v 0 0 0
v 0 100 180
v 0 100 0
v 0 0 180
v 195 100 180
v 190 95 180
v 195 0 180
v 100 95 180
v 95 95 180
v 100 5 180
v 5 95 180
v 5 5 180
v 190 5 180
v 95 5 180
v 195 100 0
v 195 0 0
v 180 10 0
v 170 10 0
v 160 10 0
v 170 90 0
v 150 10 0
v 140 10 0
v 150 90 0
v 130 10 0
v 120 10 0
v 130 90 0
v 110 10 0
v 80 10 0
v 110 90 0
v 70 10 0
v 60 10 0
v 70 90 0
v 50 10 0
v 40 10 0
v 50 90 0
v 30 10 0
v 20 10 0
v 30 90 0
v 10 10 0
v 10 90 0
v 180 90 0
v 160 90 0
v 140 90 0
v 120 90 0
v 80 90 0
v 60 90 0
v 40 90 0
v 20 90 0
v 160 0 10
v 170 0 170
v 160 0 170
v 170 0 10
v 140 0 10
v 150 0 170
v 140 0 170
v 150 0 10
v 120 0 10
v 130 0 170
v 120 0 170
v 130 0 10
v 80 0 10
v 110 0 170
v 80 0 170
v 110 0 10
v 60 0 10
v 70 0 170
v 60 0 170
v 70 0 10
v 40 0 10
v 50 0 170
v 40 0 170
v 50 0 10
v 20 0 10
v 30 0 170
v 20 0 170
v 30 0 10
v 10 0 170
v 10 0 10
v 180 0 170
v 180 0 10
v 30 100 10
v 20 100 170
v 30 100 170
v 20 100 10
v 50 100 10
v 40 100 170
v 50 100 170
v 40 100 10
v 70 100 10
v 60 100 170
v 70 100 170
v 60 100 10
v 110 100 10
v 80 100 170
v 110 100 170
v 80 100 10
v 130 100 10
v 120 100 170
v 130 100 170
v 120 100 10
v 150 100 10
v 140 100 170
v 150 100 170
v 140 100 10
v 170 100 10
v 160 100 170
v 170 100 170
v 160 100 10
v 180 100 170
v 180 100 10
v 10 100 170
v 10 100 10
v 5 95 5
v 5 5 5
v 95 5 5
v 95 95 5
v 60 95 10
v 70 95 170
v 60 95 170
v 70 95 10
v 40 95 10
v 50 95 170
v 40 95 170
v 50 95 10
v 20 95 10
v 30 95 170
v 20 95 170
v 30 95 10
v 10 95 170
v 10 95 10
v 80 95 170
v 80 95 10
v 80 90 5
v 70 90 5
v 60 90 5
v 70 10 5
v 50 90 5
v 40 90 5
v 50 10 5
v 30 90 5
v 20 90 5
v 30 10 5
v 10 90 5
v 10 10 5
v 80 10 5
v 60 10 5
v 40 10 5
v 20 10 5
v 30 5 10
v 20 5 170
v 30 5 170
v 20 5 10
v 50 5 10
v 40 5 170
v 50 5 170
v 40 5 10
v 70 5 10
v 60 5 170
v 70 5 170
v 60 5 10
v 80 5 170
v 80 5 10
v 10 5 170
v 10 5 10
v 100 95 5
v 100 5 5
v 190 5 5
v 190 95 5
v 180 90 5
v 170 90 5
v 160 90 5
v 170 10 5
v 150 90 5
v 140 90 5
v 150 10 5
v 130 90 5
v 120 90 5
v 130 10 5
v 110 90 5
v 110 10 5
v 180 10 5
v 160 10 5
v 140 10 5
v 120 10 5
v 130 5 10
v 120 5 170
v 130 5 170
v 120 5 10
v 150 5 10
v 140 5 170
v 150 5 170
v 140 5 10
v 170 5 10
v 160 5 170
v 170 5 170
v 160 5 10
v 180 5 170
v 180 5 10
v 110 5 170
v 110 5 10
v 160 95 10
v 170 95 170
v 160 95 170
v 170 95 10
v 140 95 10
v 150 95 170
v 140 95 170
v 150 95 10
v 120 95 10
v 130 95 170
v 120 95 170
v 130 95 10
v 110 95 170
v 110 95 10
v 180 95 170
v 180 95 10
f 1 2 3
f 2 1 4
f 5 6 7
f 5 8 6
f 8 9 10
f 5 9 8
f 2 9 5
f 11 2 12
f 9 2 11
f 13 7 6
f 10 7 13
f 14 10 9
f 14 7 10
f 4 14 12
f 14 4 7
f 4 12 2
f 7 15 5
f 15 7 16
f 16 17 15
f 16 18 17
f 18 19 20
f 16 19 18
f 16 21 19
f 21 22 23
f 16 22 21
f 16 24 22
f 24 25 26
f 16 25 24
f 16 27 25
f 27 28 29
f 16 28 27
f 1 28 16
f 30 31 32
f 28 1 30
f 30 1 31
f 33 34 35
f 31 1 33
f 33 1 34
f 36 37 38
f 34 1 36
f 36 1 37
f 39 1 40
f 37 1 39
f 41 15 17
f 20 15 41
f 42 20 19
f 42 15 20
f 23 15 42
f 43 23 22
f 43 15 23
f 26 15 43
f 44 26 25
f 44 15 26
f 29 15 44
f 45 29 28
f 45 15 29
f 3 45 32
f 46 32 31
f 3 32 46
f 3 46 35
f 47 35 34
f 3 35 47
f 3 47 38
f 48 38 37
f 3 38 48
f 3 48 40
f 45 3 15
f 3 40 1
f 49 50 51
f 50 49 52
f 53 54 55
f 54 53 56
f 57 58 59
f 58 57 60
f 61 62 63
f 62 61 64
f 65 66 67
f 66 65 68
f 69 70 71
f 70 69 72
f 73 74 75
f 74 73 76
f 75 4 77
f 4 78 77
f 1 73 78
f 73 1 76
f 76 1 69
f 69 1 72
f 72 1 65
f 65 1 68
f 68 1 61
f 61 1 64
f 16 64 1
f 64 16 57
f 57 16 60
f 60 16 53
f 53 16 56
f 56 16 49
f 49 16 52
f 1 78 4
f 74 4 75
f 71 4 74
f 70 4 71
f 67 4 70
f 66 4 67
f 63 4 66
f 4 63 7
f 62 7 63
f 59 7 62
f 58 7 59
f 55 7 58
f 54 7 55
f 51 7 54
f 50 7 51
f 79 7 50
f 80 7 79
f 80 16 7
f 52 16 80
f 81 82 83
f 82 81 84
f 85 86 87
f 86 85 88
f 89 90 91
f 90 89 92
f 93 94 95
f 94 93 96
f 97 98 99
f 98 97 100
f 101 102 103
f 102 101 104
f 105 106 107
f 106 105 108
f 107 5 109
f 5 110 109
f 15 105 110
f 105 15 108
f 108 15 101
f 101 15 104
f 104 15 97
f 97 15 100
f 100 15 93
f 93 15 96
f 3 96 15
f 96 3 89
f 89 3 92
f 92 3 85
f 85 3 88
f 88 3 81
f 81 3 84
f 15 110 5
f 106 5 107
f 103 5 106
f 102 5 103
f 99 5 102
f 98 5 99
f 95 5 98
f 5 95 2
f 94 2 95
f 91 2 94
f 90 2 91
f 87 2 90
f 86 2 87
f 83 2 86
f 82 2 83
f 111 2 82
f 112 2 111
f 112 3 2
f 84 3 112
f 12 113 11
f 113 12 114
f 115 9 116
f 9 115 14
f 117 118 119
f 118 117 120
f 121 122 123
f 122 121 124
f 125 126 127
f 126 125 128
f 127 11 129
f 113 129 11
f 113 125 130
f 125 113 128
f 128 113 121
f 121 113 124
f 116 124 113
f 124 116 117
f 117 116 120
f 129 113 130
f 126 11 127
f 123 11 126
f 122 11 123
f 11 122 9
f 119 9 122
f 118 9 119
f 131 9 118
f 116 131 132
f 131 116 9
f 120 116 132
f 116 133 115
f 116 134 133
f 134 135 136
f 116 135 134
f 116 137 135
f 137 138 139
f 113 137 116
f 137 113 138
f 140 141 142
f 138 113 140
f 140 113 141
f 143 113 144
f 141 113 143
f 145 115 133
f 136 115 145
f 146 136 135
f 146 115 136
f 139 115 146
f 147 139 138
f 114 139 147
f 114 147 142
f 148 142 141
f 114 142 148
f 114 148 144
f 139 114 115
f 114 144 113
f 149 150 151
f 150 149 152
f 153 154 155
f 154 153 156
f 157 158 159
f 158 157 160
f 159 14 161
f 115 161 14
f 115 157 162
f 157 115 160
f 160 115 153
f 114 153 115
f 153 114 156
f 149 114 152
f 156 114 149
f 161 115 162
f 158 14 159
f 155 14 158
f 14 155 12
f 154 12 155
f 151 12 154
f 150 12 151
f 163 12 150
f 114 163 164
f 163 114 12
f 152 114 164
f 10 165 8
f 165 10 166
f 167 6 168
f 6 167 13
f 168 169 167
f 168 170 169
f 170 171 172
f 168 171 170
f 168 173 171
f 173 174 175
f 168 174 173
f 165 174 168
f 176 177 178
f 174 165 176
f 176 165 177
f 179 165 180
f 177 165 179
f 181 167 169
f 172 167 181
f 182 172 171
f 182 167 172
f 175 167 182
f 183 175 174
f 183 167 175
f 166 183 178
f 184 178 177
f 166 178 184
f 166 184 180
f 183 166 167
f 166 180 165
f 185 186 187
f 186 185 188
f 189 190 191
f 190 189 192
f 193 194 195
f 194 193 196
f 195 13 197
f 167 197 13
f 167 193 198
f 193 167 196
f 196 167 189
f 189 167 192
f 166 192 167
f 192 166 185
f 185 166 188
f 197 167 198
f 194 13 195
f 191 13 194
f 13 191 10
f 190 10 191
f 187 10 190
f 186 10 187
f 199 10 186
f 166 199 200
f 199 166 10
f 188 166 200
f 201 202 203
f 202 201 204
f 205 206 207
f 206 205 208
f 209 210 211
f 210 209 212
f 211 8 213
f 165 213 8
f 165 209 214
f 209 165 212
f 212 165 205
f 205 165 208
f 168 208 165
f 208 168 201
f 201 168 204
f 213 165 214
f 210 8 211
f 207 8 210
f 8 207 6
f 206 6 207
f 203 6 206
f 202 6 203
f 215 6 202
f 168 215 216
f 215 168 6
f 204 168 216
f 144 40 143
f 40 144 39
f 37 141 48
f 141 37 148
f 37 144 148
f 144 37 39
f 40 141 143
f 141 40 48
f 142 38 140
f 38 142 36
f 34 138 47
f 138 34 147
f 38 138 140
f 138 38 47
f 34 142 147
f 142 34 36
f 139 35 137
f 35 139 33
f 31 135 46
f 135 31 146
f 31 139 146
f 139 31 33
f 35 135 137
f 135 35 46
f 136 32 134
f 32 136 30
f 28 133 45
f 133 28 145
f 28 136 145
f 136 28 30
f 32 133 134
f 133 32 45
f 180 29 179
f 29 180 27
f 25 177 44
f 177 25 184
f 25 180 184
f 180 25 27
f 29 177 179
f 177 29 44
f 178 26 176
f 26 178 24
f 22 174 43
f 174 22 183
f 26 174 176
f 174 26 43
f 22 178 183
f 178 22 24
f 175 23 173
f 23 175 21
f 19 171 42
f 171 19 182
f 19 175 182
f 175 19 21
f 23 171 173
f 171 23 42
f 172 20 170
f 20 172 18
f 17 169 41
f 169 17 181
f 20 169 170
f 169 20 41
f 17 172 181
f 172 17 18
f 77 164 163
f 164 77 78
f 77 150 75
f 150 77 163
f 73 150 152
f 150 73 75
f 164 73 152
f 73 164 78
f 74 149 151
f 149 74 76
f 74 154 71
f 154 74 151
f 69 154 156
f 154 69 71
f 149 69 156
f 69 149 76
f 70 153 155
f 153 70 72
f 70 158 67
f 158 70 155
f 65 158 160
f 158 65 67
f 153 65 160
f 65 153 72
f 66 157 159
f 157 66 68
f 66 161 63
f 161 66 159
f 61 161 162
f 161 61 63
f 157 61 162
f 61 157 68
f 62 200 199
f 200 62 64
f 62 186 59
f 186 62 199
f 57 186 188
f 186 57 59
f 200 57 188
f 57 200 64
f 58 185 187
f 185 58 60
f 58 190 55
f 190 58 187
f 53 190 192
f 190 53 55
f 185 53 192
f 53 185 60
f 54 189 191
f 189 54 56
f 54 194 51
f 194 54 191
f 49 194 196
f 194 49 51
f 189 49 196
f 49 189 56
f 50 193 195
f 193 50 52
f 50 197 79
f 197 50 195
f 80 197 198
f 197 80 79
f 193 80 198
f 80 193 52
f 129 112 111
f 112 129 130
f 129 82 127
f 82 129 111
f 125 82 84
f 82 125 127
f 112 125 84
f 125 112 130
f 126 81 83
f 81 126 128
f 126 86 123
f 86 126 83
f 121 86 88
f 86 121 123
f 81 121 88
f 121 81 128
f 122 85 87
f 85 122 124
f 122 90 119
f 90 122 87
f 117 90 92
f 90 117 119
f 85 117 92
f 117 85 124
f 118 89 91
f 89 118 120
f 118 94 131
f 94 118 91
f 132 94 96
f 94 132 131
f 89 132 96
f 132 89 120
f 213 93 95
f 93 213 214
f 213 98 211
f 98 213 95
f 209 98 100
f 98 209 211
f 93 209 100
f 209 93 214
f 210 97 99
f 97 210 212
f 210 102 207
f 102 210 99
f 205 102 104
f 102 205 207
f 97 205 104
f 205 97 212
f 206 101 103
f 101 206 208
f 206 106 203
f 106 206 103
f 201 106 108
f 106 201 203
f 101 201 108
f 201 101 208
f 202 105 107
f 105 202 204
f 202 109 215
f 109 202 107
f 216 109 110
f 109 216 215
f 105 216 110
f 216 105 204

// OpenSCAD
module tray() {
    difference() {

        cube([195, 100, 180]);

        translate([5, 5, 5]) cube([90, 90, 180]);
        translate([100, 5, 5]) cube([90, 90, 180]);
    }
}


difference() {
    tray();
    translate([10, 10, 0]) cube([10, 80, 10]);
    translate([30, 10, 0]) cube([10, 80, 10]);
    translate([50, 10, 0]) cube([10, 80, 10]);
    translate([70, 10, 0]) cube([10, 80, 10]);
    
    translate([110, 10, 0]) cube([10, 80, 10]);
    translate([130, 10, 0]) cube([10, 80, 10]);
    translate([150, 10, 0]) cube([10, 80, 10]);
    translate([170, 10, 0]) cube([10, 80, 10]);
    
    translate([10, 0, 10]) cube([10, 10, 160]);
    translate([30, 0, 10]) cube([10, 10, 160]);
    translate([50, 0, 10]) cube([10, 10, 160]);
    translate([70, 0, 10]) cube([10, 10, 160]);
    translate([110, 0, 10]) cube([10, 10, 160]);
    translate([130, 0, 10]) cube([10, 10, 160]);
    translate([150, 0, 10]) cube([10, 10, 160]);
    translate([170, 0, 10]) cube([10, 10, 160]);

    translate([10, 90, 10]) cube([10, 10, 160]);
    translate([30, 90, 10]) cube([10, 10, 160]);
    translate([50, 90, 10]) cube([10, 10, 160]);
    translate([70, 90, 10]) cube([10, 10, 160]);
    translate([110, 90, 10]) cube([10, 10, 160]);
    translate([130, 90, 10]) cube([10, 10, 160]);
    translate([150, 90, 10]) cube([10, 10, 160]);
    translate([170, 90, 10]) cube([10, 10, 160]);    
}
